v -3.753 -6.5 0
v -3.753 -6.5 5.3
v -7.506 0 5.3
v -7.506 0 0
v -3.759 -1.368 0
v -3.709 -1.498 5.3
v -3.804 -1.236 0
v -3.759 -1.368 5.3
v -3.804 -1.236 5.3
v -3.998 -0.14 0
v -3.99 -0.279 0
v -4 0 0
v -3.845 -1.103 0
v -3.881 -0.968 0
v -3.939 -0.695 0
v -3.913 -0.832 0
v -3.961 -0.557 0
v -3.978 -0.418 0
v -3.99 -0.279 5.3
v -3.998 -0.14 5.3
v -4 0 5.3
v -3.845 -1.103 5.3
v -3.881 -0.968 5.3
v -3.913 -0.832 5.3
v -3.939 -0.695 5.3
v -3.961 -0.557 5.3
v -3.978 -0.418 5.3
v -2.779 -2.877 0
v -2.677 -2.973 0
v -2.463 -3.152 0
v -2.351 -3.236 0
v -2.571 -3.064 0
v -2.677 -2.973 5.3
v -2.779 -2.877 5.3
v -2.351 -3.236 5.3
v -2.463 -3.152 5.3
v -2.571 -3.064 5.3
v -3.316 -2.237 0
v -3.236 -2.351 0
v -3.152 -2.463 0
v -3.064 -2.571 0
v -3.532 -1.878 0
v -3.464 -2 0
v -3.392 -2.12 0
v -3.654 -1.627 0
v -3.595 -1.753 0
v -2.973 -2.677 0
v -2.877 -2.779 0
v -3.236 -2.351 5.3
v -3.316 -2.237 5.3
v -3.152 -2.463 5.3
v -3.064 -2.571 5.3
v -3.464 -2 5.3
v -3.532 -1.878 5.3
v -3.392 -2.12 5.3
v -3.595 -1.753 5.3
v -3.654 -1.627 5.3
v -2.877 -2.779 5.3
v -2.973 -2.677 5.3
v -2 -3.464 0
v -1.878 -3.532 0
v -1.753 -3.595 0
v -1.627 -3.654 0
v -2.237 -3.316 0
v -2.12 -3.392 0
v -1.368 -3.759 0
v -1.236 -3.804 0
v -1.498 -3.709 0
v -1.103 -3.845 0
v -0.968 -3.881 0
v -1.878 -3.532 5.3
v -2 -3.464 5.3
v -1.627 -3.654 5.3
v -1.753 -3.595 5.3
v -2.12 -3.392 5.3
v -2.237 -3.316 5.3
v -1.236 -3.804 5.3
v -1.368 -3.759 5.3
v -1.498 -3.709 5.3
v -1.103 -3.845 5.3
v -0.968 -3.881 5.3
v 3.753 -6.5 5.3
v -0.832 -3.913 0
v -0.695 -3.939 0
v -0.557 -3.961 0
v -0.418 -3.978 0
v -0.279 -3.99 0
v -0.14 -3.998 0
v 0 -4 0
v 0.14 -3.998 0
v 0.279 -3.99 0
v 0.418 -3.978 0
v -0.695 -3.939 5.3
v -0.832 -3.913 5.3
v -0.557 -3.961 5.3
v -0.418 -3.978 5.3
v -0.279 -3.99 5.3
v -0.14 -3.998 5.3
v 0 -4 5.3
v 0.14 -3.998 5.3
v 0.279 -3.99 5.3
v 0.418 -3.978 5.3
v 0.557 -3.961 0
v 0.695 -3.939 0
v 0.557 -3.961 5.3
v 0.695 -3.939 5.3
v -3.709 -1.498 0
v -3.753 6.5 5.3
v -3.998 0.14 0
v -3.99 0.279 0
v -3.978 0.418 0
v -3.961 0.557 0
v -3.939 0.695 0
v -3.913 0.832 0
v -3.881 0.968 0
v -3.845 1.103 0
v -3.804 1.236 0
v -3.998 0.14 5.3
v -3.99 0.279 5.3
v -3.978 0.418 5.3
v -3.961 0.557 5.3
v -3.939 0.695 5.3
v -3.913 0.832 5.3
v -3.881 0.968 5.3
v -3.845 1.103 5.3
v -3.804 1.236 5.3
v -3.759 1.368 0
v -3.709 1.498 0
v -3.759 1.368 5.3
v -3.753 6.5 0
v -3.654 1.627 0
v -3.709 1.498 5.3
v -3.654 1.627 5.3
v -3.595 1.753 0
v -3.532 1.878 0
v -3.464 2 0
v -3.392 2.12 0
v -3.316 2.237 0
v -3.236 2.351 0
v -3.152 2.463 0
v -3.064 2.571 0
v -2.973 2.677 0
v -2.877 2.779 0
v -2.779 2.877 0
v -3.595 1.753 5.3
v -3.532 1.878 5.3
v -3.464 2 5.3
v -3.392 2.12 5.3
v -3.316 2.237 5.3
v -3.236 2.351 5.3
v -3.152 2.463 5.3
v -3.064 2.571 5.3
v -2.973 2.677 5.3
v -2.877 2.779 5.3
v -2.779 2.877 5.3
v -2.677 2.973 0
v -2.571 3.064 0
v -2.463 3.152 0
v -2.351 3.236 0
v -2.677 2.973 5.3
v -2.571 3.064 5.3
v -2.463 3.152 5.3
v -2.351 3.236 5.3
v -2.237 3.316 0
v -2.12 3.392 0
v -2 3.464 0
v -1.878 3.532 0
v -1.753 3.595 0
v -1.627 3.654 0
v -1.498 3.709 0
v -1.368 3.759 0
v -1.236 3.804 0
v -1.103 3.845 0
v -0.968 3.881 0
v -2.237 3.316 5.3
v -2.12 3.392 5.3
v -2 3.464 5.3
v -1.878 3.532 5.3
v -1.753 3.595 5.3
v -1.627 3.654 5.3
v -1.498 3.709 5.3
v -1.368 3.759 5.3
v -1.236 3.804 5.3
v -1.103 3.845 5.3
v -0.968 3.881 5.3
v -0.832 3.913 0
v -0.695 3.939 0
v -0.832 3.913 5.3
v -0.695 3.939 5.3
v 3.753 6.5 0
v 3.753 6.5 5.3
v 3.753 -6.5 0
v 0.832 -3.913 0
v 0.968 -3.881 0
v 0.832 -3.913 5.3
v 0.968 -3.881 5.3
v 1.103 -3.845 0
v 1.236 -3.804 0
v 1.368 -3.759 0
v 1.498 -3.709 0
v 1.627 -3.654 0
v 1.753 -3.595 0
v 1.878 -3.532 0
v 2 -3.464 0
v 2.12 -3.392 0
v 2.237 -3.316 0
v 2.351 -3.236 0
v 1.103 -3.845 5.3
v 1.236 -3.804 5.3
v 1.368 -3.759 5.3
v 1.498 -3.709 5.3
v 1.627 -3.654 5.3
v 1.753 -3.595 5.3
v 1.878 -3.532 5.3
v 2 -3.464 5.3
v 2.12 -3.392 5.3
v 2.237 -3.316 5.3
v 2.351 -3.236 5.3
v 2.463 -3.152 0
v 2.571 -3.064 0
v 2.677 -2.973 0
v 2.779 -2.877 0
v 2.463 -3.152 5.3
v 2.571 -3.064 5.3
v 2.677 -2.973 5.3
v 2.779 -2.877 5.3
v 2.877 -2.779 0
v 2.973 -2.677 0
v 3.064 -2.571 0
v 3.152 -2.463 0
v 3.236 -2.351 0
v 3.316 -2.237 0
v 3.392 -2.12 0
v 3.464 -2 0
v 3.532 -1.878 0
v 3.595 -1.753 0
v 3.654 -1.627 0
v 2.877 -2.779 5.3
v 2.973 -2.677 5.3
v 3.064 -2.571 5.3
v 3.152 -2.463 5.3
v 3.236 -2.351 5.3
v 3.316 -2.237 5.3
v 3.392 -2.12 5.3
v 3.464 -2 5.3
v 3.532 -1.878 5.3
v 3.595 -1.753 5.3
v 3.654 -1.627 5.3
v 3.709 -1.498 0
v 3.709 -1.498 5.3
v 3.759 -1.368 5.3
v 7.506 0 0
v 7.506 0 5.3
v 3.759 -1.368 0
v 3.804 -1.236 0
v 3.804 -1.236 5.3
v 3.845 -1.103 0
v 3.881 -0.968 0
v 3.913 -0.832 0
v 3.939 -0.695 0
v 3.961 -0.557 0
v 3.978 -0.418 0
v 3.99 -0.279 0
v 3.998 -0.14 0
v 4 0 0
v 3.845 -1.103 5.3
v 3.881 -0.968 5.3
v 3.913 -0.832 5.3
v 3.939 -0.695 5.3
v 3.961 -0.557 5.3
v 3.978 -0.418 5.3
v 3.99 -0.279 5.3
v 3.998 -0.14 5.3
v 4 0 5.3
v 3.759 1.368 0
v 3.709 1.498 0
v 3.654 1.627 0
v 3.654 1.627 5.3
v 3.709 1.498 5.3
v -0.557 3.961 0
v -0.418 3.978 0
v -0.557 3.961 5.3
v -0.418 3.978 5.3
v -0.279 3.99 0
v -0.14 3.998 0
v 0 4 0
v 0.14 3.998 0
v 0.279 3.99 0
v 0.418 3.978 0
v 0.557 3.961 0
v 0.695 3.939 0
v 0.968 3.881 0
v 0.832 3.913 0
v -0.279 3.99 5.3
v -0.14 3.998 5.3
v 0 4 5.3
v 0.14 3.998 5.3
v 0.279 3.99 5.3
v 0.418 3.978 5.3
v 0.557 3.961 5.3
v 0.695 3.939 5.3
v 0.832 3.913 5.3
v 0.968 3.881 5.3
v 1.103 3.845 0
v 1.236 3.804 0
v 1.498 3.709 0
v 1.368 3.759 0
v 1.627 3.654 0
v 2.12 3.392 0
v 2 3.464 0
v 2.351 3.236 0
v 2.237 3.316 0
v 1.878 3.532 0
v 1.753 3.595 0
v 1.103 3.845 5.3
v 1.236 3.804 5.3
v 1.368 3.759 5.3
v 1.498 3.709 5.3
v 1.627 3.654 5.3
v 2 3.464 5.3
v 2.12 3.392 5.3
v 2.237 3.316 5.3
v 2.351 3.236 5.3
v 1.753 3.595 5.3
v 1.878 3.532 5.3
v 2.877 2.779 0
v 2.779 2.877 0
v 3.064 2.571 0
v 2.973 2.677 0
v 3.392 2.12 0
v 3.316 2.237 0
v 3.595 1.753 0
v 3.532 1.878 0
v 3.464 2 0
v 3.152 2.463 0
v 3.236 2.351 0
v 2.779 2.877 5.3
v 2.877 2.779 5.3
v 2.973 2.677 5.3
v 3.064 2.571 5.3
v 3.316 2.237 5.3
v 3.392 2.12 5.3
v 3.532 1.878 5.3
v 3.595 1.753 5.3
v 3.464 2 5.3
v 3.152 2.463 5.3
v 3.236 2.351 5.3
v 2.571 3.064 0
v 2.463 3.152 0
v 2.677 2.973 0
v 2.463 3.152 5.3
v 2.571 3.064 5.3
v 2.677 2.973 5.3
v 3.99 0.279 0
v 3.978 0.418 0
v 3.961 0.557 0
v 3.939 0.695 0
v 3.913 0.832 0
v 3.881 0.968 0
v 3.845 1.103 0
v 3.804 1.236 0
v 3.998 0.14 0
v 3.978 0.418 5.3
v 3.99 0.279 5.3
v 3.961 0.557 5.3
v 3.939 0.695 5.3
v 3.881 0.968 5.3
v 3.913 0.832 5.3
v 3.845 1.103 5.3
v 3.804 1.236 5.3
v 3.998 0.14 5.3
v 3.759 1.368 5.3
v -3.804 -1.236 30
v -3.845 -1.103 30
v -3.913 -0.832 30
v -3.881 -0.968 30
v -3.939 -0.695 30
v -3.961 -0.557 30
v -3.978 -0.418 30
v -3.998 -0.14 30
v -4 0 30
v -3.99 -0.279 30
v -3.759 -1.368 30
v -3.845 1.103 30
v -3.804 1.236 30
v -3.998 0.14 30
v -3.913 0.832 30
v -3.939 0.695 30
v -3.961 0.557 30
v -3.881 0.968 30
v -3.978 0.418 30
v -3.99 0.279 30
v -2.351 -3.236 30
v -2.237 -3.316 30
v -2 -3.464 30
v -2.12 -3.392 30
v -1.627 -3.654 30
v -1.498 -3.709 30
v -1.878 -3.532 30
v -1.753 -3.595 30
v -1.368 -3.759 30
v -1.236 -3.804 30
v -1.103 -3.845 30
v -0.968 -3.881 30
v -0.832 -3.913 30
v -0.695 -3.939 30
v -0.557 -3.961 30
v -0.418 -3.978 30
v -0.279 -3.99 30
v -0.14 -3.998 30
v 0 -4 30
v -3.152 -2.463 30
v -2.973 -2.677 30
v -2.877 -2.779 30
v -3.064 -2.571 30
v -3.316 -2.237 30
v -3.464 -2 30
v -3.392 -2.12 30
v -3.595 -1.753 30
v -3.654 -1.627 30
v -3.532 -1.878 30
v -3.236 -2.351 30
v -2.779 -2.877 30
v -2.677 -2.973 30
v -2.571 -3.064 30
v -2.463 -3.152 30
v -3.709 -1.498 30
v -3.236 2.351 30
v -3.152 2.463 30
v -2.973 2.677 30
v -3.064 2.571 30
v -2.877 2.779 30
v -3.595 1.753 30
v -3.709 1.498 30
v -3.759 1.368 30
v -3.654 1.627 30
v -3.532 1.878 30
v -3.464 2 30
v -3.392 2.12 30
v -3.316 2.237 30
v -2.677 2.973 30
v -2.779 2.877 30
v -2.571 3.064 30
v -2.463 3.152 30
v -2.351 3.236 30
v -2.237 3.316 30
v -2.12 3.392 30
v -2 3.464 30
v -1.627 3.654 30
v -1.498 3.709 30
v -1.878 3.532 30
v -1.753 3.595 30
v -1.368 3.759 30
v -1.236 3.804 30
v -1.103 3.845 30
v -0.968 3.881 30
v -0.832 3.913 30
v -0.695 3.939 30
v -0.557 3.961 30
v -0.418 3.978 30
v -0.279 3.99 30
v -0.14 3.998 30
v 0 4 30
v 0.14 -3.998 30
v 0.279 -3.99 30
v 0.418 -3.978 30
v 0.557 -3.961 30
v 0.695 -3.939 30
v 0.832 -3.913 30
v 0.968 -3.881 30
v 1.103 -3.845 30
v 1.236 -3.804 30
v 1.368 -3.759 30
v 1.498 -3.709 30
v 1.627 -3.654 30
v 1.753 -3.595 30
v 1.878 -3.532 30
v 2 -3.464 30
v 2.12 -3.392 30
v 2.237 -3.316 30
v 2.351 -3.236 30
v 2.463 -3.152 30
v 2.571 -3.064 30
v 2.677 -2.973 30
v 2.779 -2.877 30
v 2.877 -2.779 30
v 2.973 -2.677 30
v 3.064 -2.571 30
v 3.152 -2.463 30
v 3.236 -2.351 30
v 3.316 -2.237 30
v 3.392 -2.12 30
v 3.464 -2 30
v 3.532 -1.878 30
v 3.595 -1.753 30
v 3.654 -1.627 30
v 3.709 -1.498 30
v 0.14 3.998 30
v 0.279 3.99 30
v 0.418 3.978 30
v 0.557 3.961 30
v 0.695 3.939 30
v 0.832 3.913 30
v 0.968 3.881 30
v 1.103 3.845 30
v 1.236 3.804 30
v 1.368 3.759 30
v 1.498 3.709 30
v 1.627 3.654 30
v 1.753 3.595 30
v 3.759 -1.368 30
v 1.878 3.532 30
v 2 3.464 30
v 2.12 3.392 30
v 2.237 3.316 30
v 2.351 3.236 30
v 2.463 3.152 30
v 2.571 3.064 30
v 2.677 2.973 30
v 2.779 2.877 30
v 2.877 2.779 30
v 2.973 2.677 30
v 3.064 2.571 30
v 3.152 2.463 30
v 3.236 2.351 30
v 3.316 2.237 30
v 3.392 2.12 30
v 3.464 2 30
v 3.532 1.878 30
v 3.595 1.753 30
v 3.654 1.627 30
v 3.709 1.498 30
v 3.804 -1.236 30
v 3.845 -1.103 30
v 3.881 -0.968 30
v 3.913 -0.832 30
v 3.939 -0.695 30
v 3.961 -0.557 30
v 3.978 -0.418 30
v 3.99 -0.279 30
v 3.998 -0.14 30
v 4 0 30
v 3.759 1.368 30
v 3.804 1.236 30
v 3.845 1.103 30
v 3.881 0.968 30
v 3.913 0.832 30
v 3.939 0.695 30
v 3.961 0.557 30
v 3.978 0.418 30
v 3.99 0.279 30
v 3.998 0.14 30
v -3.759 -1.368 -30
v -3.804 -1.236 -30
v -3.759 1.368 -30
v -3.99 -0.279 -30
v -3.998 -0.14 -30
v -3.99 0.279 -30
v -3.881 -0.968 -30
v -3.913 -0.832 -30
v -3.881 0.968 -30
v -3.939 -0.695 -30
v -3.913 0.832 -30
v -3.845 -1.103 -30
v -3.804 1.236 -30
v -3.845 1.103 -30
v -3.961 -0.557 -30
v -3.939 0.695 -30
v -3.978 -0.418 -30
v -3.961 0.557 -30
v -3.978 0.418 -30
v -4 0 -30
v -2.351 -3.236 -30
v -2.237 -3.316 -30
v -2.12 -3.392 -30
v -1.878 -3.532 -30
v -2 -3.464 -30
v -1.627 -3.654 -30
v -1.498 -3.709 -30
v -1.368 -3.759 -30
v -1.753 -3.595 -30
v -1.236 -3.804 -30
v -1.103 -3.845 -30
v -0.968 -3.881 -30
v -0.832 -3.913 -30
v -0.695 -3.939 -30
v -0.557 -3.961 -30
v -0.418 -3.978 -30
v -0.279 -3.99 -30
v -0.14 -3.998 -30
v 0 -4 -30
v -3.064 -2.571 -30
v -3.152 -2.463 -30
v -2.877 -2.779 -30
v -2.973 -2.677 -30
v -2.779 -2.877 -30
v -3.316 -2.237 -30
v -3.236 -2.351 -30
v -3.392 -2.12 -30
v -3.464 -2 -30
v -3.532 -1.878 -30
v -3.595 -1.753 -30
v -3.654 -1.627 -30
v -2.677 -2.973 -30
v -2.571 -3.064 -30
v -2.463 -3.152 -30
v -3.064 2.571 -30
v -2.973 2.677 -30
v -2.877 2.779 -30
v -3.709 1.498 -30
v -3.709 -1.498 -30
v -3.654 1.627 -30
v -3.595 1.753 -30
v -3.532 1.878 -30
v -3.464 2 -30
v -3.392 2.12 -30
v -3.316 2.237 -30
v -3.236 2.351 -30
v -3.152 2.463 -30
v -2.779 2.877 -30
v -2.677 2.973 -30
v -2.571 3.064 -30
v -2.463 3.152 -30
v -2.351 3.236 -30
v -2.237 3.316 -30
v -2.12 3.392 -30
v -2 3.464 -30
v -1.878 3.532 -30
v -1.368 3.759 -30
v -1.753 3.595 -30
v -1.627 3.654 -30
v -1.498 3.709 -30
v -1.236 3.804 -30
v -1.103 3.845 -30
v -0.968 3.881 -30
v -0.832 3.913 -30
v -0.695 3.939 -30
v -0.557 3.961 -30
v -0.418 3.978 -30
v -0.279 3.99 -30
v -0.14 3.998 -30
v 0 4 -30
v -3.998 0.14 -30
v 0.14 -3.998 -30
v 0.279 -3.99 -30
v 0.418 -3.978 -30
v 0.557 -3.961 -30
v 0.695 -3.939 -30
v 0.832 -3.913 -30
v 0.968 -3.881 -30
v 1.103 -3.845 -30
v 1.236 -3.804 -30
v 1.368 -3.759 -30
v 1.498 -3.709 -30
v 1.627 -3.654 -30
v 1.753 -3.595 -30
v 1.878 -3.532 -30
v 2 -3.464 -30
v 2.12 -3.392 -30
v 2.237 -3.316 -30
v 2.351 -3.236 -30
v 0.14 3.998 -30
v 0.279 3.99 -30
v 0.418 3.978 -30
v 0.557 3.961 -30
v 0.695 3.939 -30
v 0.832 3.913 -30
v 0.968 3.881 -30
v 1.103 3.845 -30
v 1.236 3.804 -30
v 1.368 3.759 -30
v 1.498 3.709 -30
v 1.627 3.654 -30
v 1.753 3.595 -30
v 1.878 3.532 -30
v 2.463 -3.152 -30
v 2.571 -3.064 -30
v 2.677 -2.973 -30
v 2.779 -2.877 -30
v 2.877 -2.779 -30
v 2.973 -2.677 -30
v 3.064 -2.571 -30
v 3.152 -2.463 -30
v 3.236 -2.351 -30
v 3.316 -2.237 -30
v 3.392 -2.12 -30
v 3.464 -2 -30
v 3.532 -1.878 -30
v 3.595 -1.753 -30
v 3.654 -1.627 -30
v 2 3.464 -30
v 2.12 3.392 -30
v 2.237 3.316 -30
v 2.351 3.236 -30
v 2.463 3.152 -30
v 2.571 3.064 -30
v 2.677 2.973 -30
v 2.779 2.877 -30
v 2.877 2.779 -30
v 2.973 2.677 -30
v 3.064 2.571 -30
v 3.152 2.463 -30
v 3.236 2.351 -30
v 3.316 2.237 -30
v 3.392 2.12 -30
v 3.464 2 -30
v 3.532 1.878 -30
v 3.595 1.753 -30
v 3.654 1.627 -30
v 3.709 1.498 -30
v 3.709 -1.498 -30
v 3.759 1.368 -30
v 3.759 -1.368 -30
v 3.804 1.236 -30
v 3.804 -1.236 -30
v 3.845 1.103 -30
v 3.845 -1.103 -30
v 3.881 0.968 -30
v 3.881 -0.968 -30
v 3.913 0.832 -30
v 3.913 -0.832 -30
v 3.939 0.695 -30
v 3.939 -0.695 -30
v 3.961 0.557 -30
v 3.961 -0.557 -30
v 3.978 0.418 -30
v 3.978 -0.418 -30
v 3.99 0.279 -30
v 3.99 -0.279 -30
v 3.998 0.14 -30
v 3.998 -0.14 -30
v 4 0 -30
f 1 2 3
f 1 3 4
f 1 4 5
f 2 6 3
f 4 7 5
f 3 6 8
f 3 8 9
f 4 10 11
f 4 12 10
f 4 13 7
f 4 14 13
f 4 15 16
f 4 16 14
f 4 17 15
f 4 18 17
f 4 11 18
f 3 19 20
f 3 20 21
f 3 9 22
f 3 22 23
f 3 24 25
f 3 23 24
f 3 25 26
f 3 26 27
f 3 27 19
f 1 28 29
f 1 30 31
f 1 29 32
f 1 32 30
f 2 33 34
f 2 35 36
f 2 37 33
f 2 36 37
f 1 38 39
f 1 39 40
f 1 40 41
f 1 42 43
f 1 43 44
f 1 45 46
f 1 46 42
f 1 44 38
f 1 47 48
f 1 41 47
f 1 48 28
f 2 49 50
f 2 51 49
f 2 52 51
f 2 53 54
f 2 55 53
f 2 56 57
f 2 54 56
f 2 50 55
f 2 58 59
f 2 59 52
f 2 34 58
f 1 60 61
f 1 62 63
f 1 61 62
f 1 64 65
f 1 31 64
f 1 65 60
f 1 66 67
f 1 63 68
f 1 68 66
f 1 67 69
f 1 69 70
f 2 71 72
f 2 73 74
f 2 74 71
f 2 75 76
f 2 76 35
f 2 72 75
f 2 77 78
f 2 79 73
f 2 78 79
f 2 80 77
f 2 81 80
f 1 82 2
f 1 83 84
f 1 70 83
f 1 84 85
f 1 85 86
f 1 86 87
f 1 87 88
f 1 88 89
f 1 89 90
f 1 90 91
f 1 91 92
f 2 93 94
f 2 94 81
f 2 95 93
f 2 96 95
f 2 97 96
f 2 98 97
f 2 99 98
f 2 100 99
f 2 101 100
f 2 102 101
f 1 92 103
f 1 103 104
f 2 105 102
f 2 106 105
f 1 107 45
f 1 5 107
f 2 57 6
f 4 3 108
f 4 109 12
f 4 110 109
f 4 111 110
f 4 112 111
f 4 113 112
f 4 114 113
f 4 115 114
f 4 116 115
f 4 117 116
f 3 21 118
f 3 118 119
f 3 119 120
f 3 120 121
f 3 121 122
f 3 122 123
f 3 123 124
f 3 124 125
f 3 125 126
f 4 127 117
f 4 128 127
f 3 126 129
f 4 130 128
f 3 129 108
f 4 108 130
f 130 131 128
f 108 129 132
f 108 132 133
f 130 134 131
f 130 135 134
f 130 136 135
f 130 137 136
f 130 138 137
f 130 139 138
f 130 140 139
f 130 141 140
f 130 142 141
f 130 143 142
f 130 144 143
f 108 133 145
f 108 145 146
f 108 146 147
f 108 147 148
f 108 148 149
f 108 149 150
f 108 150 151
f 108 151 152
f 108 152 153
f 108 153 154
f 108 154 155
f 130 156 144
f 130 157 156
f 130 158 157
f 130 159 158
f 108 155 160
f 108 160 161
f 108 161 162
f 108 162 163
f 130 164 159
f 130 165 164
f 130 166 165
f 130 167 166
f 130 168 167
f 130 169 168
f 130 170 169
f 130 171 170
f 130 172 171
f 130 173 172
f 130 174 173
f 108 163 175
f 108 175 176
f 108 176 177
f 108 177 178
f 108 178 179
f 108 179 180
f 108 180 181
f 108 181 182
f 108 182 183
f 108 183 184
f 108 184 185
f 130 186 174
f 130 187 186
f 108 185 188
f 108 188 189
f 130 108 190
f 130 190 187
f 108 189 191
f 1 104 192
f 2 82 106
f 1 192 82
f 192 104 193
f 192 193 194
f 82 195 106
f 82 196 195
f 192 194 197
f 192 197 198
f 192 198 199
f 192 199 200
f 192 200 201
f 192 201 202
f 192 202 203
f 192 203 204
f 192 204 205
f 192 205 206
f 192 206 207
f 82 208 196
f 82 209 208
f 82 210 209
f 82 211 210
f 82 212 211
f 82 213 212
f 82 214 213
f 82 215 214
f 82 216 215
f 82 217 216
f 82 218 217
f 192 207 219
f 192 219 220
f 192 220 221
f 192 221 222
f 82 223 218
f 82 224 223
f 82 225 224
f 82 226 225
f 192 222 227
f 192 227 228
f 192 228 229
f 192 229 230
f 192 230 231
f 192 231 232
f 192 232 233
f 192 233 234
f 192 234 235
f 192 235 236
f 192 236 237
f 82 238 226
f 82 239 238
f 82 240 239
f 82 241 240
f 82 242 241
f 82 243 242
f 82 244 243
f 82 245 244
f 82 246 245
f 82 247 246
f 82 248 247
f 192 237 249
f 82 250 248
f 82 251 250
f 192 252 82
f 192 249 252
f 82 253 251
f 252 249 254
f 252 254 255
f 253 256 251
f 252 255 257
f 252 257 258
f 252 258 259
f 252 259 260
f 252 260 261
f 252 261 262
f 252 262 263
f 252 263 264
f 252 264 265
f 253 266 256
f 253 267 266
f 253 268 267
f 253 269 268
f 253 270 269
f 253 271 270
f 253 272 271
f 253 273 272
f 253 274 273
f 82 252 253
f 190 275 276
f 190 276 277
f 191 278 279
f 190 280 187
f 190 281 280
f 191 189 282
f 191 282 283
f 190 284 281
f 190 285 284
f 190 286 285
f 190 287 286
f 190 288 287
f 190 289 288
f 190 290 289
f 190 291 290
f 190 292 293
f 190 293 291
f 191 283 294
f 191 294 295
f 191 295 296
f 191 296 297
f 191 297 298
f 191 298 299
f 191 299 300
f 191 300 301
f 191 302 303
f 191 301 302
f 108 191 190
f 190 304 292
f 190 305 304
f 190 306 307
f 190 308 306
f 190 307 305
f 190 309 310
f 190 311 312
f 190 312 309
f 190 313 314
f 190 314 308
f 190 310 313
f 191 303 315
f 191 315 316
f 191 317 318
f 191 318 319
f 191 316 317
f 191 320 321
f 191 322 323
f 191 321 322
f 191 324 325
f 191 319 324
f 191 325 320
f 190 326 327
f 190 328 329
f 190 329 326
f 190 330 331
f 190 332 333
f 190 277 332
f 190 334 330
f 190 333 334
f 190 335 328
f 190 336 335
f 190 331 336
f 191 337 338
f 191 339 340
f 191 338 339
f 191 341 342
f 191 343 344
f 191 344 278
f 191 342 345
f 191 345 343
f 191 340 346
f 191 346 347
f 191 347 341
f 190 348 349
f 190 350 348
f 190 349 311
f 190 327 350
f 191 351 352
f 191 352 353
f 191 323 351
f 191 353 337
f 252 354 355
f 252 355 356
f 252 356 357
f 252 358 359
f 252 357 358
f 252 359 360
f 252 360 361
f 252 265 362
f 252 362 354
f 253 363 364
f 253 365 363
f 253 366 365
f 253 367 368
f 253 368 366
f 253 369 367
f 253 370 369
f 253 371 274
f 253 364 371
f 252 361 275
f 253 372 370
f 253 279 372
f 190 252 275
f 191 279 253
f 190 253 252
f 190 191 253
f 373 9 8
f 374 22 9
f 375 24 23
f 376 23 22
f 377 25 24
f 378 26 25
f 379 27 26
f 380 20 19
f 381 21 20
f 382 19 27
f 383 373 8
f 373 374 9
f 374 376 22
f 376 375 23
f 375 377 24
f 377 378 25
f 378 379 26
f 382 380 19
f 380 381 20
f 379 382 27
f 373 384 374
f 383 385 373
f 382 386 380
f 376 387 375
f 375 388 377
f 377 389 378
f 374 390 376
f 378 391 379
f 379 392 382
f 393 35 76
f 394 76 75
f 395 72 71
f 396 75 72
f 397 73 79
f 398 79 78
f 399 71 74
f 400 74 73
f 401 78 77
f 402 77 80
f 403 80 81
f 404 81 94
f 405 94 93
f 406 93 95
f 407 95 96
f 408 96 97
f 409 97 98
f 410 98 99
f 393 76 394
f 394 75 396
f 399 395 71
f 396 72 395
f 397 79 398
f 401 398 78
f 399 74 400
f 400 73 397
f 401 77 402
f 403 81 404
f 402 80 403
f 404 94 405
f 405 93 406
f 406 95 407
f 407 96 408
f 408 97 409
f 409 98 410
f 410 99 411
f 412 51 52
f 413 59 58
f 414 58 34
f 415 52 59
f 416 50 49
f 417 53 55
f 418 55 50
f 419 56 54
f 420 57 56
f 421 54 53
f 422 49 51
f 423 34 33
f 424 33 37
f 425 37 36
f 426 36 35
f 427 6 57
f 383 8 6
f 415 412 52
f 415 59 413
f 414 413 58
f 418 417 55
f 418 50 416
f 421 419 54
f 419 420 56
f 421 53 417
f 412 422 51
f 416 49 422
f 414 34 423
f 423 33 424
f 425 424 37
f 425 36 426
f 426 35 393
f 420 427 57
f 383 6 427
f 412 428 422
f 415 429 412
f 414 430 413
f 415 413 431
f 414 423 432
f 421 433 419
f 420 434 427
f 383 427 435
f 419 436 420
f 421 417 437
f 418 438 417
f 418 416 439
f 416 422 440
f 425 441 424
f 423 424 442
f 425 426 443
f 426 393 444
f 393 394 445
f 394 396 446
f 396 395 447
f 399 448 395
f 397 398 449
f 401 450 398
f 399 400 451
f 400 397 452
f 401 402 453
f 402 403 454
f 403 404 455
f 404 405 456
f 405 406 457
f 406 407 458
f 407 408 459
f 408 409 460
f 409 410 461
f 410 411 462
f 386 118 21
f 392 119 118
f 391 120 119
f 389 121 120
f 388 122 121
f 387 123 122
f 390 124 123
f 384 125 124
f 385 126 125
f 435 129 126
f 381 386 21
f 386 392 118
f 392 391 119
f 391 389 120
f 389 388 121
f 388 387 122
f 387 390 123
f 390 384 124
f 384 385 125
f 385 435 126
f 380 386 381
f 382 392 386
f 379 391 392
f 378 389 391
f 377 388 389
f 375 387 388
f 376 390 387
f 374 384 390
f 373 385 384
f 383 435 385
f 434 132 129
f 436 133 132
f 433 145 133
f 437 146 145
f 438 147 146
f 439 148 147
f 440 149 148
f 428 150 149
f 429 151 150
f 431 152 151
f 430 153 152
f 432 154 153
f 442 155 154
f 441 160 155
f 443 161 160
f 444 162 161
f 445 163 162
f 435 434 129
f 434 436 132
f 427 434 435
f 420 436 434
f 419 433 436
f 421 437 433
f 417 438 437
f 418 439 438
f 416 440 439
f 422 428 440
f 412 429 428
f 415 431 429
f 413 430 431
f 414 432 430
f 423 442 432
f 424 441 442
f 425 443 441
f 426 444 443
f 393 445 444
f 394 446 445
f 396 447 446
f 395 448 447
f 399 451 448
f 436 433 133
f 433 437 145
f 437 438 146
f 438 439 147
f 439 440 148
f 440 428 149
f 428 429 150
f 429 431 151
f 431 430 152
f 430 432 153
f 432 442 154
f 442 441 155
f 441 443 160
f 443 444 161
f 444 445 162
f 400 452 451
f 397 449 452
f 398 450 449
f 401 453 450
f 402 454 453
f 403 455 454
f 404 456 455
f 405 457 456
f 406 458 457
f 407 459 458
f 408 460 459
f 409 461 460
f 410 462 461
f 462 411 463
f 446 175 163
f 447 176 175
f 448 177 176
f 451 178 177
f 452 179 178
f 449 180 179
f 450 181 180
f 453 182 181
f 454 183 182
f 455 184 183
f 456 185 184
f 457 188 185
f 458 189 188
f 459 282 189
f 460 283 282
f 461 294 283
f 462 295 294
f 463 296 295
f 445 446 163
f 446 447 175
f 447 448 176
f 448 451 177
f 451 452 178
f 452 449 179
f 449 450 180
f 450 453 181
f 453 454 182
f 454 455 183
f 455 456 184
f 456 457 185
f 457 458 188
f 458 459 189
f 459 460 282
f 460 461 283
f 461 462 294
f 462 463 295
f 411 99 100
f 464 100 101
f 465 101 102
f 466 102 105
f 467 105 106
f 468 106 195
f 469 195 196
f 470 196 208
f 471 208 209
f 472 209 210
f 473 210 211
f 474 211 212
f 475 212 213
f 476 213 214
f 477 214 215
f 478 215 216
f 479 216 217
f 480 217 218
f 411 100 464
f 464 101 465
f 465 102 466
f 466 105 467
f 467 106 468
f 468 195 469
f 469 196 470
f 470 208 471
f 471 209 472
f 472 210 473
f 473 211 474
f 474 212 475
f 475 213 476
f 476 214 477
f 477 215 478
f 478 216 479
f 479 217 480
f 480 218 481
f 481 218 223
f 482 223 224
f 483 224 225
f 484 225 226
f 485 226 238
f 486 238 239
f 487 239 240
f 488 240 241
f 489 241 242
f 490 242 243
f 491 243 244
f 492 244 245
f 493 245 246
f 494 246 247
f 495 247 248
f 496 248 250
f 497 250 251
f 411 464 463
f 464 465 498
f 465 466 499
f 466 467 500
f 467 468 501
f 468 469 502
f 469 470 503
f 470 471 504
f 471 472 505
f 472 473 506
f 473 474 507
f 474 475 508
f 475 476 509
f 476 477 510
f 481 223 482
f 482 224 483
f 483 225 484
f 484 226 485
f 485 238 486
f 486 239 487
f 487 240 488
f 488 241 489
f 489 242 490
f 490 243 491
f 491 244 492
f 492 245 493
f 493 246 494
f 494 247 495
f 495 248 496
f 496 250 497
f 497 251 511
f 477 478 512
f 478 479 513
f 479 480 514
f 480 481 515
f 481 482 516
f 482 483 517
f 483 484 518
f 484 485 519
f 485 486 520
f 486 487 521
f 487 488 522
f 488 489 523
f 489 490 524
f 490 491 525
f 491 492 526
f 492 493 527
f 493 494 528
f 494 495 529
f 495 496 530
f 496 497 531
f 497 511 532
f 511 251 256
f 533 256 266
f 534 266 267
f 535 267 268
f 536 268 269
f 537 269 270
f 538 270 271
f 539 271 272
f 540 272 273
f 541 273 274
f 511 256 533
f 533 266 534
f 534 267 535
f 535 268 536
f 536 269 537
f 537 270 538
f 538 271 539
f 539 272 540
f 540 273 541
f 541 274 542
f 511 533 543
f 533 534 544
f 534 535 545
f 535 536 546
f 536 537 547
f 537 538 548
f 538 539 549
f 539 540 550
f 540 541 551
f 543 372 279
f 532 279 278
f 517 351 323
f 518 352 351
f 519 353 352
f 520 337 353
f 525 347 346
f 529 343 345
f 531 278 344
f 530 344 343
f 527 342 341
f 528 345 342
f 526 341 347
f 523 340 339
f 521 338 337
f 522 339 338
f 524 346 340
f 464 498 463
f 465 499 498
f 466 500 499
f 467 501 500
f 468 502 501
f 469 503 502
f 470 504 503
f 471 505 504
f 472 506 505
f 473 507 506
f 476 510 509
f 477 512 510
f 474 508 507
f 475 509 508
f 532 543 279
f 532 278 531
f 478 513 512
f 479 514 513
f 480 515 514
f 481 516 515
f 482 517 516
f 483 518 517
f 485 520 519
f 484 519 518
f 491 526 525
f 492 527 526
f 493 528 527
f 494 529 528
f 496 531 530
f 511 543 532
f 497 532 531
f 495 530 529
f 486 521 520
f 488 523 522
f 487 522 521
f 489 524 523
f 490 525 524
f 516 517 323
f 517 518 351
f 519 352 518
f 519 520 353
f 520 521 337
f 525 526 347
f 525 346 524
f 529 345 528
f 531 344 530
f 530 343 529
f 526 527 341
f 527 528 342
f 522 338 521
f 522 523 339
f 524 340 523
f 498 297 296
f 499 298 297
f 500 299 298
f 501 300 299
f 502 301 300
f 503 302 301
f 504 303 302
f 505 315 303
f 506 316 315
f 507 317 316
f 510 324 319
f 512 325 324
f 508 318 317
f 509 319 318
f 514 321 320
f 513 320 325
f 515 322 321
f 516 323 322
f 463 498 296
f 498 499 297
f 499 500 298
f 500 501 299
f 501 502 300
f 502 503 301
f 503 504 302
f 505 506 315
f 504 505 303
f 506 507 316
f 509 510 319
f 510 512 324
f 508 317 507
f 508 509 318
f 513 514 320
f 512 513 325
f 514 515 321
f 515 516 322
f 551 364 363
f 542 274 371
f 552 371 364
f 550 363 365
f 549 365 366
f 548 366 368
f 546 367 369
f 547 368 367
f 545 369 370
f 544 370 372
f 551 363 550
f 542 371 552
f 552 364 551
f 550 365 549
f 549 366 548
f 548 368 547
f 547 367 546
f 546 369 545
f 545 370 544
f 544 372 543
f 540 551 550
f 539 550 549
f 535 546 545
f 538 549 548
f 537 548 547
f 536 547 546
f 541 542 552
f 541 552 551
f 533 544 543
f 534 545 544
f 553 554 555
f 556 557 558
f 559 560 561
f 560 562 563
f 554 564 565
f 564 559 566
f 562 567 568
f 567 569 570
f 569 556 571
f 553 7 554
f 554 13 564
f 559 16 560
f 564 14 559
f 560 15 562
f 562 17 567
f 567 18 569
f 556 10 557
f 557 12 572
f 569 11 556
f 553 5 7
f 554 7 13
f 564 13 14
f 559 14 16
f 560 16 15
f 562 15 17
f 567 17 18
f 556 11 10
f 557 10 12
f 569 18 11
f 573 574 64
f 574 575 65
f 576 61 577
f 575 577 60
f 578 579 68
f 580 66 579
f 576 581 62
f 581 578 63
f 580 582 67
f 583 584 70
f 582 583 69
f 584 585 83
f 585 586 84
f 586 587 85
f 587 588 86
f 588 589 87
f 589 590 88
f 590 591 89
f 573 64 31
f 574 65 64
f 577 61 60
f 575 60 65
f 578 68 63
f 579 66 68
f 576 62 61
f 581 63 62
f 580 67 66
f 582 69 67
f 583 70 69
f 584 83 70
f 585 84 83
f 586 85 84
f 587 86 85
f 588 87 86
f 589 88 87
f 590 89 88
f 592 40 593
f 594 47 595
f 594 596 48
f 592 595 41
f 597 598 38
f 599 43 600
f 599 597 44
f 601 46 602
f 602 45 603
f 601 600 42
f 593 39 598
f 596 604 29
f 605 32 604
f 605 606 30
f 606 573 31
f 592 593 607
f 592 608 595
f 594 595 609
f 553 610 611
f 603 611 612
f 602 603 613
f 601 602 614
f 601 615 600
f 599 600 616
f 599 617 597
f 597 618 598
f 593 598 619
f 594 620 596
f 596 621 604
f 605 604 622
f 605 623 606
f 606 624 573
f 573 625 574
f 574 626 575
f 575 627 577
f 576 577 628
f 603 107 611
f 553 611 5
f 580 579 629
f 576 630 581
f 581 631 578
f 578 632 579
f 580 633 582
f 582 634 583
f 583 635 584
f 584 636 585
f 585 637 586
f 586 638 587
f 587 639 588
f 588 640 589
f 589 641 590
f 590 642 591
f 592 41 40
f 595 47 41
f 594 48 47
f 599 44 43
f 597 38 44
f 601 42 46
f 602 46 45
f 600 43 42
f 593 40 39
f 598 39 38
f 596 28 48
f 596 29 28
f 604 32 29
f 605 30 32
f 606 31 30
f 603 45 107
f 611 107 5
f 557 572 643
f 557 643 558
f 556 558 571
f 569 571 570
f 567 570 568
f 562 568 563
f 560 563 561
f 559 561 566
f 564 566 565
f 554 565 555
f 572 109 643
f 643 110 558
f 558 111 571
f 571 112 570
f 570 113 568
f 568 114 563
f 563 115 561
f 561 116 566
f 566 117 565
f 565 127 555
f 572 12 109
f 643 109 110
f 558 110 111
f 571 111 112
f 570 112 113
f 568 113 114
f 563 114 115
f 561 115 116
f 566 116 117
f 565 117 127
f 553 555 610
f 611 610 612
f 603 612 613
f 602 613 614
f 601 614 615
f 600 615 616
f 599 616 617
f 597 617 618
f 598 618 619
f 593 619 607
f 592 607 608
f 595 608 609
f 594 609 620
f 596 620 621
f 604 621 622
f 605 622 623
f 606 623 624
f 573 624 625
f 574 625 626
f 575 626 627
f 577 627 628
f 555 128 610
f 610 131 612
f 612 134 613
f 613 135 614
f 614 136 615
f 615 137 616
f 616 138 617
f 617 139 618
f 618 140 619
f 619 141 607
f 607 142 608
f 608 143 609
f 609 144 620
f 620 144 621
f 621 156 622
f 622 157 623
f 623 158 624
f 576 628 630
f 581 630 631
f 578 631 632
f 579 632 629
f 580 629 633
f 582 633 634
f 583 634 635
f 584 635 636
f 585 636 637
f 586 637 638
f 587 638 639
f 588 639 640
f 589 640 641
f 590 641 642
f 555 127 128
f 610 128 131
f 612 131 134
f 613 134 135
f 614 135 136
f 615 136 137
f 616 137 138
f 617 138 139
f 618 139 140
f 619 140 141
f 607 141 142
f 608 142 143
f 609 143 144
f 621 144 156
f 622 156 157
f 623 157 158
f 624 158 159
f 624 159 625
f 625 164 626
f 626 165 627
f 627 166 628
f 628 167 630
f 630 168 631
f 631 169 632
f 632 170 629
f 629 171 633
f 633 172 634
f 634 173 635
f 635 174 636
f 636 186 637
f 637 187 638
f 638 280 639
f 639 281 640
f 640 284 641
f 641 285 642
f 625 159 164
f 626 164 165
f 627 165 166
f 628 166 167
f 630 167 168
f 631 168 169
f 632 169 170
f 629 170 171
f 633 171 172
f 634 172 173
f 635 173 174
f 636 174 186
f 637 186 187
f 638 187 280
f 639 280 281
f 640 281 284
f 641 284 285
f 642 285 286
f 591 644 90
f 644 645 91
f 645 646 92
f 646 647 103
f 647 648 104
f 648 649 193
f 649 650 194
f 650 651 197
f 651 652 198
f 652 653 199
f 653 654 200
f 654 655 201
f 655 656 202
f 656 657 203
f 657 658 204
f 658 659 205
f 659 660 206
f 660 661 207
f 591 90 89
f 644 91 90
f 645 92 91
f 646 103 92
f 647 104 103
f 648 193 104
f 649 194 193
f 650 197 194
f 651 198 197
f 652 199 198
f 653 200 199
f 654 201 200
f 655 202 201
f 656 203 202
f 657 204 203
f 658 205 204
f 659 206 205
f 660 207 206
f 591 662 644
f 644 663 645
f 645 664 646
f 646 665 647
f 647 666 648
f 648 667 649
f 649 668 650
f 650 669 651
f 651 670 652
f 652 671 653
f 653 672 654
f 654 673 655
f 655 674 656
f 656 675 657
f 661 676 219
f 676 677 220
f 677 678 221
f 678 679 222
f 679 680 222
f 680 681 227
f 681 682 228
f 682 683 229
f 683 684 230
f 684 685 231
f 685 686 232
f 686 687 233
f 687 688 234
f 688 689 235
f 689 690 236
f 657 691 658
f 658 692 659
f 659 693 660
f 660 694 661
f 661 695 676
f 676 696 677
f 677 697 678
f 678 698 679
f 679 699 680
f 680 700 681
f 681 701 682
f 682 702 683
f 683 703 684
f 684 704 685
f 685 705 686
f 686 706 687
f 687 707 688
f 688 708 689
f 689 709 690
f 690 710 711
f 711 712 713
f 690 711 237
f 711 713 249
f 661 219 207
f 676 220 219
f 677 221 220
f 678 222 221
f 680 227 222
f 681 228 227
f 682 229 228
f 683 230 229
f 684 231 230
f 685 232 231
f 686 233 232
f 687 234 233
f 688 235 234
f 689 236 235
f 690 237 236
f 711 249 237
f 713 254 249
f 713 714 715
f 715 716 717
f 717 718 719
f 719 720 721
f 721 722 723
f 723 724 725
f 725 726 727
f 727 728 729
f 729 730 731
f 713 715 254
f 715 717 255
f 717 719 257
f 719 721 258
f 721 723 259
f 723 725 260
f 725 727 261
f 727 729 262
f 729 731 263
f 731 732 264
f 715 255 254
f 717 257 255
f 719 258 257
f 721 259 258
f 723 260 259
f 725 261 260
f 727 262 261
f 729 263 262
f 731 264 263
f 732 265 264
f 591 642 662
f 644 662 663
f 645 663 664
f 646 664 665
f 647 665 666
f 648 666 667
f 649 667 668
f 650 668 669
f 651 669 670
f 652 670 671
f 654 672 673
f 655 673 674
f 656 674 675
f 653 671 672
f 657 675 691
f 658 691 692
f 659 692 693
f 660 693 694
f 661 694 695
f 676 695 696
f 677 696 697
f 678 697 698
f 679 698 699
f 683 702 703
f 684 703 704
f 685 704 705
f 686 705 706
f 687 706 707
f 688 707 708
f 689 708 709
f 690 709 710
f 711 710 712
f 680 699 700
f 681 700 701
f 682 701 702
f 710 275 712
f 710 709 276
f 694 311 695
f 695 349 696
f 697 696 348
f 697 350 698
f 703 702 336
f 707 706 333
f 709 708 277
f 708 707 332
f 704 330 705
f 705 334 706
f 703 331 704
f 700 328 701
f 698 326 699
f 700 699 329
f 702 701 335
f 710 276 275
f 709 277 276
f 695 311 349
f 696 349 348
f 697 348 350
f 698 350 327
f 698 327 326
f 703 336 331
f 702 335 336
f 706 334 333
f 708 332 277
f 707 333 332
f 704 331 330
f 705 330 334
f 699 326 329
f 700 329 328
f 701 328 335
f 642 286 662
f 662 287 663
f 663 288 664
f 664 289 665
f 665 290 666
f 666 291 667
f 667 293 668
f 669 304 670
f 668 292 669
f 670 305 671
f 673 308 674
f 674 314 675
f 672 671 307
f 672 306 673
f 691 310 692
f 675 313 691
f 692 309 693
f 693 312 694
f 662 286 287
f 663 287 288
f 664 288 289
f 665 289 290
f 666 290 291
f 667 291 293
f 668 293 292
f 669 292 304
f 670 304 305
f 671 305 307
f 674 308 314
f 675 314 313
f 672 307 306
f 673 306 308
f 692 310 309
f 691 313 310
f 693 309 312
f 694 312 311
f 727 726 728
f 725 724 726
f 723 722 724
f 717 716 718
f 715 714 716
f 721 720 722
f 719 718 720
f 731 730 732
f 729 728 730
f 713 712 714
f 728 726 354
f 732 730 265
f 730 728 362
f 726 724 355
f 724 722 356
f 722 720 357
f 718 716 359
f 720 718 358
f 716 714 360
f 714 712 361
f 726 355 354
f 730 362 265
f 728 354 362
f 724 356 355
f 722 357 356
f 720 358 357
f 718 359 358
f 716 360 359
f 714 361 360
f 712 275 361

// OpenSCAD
// M8 hex bolt (thread omitted)

$fn = 180;

// Parameters
af = 13;      // across-flats of hex head [mm]
h  = 5.3;     // head height [mm]
d  = 8;       // shank diameter [mm]
L  = 30;      // shank length [mm]

// Hex head: build centered cylinder with flat-to-flat = af
// For a regular hexagon: across-flats = 2 * apothem = 2 * (R * cos(30)) = R * sqrt(3)
// => circumradius R = af / sqrt(3)
R = af / sqrt(3);

module hex_prism(flat_to_flat, height) {
  $fn = 6;
  // circumradius derived from across-flats
  cylinder(h=height, r=flat_to_flat / sqrt(3), center=false);
}

// Placement: head bottom at z=0, shank extends into z<0
union() {
  // Head
  translate([0, 0, 0])
    hex_prism(af, h);

  // Shank
  translate([0, 0, 0])
    cylinder(h=L, d=d, center=false); // extends from z=0 to z=L
  // Move shank to extend into z<0
  translate([0, 0, -L])
    cylinder(h=L, d=d, center=false);
}
